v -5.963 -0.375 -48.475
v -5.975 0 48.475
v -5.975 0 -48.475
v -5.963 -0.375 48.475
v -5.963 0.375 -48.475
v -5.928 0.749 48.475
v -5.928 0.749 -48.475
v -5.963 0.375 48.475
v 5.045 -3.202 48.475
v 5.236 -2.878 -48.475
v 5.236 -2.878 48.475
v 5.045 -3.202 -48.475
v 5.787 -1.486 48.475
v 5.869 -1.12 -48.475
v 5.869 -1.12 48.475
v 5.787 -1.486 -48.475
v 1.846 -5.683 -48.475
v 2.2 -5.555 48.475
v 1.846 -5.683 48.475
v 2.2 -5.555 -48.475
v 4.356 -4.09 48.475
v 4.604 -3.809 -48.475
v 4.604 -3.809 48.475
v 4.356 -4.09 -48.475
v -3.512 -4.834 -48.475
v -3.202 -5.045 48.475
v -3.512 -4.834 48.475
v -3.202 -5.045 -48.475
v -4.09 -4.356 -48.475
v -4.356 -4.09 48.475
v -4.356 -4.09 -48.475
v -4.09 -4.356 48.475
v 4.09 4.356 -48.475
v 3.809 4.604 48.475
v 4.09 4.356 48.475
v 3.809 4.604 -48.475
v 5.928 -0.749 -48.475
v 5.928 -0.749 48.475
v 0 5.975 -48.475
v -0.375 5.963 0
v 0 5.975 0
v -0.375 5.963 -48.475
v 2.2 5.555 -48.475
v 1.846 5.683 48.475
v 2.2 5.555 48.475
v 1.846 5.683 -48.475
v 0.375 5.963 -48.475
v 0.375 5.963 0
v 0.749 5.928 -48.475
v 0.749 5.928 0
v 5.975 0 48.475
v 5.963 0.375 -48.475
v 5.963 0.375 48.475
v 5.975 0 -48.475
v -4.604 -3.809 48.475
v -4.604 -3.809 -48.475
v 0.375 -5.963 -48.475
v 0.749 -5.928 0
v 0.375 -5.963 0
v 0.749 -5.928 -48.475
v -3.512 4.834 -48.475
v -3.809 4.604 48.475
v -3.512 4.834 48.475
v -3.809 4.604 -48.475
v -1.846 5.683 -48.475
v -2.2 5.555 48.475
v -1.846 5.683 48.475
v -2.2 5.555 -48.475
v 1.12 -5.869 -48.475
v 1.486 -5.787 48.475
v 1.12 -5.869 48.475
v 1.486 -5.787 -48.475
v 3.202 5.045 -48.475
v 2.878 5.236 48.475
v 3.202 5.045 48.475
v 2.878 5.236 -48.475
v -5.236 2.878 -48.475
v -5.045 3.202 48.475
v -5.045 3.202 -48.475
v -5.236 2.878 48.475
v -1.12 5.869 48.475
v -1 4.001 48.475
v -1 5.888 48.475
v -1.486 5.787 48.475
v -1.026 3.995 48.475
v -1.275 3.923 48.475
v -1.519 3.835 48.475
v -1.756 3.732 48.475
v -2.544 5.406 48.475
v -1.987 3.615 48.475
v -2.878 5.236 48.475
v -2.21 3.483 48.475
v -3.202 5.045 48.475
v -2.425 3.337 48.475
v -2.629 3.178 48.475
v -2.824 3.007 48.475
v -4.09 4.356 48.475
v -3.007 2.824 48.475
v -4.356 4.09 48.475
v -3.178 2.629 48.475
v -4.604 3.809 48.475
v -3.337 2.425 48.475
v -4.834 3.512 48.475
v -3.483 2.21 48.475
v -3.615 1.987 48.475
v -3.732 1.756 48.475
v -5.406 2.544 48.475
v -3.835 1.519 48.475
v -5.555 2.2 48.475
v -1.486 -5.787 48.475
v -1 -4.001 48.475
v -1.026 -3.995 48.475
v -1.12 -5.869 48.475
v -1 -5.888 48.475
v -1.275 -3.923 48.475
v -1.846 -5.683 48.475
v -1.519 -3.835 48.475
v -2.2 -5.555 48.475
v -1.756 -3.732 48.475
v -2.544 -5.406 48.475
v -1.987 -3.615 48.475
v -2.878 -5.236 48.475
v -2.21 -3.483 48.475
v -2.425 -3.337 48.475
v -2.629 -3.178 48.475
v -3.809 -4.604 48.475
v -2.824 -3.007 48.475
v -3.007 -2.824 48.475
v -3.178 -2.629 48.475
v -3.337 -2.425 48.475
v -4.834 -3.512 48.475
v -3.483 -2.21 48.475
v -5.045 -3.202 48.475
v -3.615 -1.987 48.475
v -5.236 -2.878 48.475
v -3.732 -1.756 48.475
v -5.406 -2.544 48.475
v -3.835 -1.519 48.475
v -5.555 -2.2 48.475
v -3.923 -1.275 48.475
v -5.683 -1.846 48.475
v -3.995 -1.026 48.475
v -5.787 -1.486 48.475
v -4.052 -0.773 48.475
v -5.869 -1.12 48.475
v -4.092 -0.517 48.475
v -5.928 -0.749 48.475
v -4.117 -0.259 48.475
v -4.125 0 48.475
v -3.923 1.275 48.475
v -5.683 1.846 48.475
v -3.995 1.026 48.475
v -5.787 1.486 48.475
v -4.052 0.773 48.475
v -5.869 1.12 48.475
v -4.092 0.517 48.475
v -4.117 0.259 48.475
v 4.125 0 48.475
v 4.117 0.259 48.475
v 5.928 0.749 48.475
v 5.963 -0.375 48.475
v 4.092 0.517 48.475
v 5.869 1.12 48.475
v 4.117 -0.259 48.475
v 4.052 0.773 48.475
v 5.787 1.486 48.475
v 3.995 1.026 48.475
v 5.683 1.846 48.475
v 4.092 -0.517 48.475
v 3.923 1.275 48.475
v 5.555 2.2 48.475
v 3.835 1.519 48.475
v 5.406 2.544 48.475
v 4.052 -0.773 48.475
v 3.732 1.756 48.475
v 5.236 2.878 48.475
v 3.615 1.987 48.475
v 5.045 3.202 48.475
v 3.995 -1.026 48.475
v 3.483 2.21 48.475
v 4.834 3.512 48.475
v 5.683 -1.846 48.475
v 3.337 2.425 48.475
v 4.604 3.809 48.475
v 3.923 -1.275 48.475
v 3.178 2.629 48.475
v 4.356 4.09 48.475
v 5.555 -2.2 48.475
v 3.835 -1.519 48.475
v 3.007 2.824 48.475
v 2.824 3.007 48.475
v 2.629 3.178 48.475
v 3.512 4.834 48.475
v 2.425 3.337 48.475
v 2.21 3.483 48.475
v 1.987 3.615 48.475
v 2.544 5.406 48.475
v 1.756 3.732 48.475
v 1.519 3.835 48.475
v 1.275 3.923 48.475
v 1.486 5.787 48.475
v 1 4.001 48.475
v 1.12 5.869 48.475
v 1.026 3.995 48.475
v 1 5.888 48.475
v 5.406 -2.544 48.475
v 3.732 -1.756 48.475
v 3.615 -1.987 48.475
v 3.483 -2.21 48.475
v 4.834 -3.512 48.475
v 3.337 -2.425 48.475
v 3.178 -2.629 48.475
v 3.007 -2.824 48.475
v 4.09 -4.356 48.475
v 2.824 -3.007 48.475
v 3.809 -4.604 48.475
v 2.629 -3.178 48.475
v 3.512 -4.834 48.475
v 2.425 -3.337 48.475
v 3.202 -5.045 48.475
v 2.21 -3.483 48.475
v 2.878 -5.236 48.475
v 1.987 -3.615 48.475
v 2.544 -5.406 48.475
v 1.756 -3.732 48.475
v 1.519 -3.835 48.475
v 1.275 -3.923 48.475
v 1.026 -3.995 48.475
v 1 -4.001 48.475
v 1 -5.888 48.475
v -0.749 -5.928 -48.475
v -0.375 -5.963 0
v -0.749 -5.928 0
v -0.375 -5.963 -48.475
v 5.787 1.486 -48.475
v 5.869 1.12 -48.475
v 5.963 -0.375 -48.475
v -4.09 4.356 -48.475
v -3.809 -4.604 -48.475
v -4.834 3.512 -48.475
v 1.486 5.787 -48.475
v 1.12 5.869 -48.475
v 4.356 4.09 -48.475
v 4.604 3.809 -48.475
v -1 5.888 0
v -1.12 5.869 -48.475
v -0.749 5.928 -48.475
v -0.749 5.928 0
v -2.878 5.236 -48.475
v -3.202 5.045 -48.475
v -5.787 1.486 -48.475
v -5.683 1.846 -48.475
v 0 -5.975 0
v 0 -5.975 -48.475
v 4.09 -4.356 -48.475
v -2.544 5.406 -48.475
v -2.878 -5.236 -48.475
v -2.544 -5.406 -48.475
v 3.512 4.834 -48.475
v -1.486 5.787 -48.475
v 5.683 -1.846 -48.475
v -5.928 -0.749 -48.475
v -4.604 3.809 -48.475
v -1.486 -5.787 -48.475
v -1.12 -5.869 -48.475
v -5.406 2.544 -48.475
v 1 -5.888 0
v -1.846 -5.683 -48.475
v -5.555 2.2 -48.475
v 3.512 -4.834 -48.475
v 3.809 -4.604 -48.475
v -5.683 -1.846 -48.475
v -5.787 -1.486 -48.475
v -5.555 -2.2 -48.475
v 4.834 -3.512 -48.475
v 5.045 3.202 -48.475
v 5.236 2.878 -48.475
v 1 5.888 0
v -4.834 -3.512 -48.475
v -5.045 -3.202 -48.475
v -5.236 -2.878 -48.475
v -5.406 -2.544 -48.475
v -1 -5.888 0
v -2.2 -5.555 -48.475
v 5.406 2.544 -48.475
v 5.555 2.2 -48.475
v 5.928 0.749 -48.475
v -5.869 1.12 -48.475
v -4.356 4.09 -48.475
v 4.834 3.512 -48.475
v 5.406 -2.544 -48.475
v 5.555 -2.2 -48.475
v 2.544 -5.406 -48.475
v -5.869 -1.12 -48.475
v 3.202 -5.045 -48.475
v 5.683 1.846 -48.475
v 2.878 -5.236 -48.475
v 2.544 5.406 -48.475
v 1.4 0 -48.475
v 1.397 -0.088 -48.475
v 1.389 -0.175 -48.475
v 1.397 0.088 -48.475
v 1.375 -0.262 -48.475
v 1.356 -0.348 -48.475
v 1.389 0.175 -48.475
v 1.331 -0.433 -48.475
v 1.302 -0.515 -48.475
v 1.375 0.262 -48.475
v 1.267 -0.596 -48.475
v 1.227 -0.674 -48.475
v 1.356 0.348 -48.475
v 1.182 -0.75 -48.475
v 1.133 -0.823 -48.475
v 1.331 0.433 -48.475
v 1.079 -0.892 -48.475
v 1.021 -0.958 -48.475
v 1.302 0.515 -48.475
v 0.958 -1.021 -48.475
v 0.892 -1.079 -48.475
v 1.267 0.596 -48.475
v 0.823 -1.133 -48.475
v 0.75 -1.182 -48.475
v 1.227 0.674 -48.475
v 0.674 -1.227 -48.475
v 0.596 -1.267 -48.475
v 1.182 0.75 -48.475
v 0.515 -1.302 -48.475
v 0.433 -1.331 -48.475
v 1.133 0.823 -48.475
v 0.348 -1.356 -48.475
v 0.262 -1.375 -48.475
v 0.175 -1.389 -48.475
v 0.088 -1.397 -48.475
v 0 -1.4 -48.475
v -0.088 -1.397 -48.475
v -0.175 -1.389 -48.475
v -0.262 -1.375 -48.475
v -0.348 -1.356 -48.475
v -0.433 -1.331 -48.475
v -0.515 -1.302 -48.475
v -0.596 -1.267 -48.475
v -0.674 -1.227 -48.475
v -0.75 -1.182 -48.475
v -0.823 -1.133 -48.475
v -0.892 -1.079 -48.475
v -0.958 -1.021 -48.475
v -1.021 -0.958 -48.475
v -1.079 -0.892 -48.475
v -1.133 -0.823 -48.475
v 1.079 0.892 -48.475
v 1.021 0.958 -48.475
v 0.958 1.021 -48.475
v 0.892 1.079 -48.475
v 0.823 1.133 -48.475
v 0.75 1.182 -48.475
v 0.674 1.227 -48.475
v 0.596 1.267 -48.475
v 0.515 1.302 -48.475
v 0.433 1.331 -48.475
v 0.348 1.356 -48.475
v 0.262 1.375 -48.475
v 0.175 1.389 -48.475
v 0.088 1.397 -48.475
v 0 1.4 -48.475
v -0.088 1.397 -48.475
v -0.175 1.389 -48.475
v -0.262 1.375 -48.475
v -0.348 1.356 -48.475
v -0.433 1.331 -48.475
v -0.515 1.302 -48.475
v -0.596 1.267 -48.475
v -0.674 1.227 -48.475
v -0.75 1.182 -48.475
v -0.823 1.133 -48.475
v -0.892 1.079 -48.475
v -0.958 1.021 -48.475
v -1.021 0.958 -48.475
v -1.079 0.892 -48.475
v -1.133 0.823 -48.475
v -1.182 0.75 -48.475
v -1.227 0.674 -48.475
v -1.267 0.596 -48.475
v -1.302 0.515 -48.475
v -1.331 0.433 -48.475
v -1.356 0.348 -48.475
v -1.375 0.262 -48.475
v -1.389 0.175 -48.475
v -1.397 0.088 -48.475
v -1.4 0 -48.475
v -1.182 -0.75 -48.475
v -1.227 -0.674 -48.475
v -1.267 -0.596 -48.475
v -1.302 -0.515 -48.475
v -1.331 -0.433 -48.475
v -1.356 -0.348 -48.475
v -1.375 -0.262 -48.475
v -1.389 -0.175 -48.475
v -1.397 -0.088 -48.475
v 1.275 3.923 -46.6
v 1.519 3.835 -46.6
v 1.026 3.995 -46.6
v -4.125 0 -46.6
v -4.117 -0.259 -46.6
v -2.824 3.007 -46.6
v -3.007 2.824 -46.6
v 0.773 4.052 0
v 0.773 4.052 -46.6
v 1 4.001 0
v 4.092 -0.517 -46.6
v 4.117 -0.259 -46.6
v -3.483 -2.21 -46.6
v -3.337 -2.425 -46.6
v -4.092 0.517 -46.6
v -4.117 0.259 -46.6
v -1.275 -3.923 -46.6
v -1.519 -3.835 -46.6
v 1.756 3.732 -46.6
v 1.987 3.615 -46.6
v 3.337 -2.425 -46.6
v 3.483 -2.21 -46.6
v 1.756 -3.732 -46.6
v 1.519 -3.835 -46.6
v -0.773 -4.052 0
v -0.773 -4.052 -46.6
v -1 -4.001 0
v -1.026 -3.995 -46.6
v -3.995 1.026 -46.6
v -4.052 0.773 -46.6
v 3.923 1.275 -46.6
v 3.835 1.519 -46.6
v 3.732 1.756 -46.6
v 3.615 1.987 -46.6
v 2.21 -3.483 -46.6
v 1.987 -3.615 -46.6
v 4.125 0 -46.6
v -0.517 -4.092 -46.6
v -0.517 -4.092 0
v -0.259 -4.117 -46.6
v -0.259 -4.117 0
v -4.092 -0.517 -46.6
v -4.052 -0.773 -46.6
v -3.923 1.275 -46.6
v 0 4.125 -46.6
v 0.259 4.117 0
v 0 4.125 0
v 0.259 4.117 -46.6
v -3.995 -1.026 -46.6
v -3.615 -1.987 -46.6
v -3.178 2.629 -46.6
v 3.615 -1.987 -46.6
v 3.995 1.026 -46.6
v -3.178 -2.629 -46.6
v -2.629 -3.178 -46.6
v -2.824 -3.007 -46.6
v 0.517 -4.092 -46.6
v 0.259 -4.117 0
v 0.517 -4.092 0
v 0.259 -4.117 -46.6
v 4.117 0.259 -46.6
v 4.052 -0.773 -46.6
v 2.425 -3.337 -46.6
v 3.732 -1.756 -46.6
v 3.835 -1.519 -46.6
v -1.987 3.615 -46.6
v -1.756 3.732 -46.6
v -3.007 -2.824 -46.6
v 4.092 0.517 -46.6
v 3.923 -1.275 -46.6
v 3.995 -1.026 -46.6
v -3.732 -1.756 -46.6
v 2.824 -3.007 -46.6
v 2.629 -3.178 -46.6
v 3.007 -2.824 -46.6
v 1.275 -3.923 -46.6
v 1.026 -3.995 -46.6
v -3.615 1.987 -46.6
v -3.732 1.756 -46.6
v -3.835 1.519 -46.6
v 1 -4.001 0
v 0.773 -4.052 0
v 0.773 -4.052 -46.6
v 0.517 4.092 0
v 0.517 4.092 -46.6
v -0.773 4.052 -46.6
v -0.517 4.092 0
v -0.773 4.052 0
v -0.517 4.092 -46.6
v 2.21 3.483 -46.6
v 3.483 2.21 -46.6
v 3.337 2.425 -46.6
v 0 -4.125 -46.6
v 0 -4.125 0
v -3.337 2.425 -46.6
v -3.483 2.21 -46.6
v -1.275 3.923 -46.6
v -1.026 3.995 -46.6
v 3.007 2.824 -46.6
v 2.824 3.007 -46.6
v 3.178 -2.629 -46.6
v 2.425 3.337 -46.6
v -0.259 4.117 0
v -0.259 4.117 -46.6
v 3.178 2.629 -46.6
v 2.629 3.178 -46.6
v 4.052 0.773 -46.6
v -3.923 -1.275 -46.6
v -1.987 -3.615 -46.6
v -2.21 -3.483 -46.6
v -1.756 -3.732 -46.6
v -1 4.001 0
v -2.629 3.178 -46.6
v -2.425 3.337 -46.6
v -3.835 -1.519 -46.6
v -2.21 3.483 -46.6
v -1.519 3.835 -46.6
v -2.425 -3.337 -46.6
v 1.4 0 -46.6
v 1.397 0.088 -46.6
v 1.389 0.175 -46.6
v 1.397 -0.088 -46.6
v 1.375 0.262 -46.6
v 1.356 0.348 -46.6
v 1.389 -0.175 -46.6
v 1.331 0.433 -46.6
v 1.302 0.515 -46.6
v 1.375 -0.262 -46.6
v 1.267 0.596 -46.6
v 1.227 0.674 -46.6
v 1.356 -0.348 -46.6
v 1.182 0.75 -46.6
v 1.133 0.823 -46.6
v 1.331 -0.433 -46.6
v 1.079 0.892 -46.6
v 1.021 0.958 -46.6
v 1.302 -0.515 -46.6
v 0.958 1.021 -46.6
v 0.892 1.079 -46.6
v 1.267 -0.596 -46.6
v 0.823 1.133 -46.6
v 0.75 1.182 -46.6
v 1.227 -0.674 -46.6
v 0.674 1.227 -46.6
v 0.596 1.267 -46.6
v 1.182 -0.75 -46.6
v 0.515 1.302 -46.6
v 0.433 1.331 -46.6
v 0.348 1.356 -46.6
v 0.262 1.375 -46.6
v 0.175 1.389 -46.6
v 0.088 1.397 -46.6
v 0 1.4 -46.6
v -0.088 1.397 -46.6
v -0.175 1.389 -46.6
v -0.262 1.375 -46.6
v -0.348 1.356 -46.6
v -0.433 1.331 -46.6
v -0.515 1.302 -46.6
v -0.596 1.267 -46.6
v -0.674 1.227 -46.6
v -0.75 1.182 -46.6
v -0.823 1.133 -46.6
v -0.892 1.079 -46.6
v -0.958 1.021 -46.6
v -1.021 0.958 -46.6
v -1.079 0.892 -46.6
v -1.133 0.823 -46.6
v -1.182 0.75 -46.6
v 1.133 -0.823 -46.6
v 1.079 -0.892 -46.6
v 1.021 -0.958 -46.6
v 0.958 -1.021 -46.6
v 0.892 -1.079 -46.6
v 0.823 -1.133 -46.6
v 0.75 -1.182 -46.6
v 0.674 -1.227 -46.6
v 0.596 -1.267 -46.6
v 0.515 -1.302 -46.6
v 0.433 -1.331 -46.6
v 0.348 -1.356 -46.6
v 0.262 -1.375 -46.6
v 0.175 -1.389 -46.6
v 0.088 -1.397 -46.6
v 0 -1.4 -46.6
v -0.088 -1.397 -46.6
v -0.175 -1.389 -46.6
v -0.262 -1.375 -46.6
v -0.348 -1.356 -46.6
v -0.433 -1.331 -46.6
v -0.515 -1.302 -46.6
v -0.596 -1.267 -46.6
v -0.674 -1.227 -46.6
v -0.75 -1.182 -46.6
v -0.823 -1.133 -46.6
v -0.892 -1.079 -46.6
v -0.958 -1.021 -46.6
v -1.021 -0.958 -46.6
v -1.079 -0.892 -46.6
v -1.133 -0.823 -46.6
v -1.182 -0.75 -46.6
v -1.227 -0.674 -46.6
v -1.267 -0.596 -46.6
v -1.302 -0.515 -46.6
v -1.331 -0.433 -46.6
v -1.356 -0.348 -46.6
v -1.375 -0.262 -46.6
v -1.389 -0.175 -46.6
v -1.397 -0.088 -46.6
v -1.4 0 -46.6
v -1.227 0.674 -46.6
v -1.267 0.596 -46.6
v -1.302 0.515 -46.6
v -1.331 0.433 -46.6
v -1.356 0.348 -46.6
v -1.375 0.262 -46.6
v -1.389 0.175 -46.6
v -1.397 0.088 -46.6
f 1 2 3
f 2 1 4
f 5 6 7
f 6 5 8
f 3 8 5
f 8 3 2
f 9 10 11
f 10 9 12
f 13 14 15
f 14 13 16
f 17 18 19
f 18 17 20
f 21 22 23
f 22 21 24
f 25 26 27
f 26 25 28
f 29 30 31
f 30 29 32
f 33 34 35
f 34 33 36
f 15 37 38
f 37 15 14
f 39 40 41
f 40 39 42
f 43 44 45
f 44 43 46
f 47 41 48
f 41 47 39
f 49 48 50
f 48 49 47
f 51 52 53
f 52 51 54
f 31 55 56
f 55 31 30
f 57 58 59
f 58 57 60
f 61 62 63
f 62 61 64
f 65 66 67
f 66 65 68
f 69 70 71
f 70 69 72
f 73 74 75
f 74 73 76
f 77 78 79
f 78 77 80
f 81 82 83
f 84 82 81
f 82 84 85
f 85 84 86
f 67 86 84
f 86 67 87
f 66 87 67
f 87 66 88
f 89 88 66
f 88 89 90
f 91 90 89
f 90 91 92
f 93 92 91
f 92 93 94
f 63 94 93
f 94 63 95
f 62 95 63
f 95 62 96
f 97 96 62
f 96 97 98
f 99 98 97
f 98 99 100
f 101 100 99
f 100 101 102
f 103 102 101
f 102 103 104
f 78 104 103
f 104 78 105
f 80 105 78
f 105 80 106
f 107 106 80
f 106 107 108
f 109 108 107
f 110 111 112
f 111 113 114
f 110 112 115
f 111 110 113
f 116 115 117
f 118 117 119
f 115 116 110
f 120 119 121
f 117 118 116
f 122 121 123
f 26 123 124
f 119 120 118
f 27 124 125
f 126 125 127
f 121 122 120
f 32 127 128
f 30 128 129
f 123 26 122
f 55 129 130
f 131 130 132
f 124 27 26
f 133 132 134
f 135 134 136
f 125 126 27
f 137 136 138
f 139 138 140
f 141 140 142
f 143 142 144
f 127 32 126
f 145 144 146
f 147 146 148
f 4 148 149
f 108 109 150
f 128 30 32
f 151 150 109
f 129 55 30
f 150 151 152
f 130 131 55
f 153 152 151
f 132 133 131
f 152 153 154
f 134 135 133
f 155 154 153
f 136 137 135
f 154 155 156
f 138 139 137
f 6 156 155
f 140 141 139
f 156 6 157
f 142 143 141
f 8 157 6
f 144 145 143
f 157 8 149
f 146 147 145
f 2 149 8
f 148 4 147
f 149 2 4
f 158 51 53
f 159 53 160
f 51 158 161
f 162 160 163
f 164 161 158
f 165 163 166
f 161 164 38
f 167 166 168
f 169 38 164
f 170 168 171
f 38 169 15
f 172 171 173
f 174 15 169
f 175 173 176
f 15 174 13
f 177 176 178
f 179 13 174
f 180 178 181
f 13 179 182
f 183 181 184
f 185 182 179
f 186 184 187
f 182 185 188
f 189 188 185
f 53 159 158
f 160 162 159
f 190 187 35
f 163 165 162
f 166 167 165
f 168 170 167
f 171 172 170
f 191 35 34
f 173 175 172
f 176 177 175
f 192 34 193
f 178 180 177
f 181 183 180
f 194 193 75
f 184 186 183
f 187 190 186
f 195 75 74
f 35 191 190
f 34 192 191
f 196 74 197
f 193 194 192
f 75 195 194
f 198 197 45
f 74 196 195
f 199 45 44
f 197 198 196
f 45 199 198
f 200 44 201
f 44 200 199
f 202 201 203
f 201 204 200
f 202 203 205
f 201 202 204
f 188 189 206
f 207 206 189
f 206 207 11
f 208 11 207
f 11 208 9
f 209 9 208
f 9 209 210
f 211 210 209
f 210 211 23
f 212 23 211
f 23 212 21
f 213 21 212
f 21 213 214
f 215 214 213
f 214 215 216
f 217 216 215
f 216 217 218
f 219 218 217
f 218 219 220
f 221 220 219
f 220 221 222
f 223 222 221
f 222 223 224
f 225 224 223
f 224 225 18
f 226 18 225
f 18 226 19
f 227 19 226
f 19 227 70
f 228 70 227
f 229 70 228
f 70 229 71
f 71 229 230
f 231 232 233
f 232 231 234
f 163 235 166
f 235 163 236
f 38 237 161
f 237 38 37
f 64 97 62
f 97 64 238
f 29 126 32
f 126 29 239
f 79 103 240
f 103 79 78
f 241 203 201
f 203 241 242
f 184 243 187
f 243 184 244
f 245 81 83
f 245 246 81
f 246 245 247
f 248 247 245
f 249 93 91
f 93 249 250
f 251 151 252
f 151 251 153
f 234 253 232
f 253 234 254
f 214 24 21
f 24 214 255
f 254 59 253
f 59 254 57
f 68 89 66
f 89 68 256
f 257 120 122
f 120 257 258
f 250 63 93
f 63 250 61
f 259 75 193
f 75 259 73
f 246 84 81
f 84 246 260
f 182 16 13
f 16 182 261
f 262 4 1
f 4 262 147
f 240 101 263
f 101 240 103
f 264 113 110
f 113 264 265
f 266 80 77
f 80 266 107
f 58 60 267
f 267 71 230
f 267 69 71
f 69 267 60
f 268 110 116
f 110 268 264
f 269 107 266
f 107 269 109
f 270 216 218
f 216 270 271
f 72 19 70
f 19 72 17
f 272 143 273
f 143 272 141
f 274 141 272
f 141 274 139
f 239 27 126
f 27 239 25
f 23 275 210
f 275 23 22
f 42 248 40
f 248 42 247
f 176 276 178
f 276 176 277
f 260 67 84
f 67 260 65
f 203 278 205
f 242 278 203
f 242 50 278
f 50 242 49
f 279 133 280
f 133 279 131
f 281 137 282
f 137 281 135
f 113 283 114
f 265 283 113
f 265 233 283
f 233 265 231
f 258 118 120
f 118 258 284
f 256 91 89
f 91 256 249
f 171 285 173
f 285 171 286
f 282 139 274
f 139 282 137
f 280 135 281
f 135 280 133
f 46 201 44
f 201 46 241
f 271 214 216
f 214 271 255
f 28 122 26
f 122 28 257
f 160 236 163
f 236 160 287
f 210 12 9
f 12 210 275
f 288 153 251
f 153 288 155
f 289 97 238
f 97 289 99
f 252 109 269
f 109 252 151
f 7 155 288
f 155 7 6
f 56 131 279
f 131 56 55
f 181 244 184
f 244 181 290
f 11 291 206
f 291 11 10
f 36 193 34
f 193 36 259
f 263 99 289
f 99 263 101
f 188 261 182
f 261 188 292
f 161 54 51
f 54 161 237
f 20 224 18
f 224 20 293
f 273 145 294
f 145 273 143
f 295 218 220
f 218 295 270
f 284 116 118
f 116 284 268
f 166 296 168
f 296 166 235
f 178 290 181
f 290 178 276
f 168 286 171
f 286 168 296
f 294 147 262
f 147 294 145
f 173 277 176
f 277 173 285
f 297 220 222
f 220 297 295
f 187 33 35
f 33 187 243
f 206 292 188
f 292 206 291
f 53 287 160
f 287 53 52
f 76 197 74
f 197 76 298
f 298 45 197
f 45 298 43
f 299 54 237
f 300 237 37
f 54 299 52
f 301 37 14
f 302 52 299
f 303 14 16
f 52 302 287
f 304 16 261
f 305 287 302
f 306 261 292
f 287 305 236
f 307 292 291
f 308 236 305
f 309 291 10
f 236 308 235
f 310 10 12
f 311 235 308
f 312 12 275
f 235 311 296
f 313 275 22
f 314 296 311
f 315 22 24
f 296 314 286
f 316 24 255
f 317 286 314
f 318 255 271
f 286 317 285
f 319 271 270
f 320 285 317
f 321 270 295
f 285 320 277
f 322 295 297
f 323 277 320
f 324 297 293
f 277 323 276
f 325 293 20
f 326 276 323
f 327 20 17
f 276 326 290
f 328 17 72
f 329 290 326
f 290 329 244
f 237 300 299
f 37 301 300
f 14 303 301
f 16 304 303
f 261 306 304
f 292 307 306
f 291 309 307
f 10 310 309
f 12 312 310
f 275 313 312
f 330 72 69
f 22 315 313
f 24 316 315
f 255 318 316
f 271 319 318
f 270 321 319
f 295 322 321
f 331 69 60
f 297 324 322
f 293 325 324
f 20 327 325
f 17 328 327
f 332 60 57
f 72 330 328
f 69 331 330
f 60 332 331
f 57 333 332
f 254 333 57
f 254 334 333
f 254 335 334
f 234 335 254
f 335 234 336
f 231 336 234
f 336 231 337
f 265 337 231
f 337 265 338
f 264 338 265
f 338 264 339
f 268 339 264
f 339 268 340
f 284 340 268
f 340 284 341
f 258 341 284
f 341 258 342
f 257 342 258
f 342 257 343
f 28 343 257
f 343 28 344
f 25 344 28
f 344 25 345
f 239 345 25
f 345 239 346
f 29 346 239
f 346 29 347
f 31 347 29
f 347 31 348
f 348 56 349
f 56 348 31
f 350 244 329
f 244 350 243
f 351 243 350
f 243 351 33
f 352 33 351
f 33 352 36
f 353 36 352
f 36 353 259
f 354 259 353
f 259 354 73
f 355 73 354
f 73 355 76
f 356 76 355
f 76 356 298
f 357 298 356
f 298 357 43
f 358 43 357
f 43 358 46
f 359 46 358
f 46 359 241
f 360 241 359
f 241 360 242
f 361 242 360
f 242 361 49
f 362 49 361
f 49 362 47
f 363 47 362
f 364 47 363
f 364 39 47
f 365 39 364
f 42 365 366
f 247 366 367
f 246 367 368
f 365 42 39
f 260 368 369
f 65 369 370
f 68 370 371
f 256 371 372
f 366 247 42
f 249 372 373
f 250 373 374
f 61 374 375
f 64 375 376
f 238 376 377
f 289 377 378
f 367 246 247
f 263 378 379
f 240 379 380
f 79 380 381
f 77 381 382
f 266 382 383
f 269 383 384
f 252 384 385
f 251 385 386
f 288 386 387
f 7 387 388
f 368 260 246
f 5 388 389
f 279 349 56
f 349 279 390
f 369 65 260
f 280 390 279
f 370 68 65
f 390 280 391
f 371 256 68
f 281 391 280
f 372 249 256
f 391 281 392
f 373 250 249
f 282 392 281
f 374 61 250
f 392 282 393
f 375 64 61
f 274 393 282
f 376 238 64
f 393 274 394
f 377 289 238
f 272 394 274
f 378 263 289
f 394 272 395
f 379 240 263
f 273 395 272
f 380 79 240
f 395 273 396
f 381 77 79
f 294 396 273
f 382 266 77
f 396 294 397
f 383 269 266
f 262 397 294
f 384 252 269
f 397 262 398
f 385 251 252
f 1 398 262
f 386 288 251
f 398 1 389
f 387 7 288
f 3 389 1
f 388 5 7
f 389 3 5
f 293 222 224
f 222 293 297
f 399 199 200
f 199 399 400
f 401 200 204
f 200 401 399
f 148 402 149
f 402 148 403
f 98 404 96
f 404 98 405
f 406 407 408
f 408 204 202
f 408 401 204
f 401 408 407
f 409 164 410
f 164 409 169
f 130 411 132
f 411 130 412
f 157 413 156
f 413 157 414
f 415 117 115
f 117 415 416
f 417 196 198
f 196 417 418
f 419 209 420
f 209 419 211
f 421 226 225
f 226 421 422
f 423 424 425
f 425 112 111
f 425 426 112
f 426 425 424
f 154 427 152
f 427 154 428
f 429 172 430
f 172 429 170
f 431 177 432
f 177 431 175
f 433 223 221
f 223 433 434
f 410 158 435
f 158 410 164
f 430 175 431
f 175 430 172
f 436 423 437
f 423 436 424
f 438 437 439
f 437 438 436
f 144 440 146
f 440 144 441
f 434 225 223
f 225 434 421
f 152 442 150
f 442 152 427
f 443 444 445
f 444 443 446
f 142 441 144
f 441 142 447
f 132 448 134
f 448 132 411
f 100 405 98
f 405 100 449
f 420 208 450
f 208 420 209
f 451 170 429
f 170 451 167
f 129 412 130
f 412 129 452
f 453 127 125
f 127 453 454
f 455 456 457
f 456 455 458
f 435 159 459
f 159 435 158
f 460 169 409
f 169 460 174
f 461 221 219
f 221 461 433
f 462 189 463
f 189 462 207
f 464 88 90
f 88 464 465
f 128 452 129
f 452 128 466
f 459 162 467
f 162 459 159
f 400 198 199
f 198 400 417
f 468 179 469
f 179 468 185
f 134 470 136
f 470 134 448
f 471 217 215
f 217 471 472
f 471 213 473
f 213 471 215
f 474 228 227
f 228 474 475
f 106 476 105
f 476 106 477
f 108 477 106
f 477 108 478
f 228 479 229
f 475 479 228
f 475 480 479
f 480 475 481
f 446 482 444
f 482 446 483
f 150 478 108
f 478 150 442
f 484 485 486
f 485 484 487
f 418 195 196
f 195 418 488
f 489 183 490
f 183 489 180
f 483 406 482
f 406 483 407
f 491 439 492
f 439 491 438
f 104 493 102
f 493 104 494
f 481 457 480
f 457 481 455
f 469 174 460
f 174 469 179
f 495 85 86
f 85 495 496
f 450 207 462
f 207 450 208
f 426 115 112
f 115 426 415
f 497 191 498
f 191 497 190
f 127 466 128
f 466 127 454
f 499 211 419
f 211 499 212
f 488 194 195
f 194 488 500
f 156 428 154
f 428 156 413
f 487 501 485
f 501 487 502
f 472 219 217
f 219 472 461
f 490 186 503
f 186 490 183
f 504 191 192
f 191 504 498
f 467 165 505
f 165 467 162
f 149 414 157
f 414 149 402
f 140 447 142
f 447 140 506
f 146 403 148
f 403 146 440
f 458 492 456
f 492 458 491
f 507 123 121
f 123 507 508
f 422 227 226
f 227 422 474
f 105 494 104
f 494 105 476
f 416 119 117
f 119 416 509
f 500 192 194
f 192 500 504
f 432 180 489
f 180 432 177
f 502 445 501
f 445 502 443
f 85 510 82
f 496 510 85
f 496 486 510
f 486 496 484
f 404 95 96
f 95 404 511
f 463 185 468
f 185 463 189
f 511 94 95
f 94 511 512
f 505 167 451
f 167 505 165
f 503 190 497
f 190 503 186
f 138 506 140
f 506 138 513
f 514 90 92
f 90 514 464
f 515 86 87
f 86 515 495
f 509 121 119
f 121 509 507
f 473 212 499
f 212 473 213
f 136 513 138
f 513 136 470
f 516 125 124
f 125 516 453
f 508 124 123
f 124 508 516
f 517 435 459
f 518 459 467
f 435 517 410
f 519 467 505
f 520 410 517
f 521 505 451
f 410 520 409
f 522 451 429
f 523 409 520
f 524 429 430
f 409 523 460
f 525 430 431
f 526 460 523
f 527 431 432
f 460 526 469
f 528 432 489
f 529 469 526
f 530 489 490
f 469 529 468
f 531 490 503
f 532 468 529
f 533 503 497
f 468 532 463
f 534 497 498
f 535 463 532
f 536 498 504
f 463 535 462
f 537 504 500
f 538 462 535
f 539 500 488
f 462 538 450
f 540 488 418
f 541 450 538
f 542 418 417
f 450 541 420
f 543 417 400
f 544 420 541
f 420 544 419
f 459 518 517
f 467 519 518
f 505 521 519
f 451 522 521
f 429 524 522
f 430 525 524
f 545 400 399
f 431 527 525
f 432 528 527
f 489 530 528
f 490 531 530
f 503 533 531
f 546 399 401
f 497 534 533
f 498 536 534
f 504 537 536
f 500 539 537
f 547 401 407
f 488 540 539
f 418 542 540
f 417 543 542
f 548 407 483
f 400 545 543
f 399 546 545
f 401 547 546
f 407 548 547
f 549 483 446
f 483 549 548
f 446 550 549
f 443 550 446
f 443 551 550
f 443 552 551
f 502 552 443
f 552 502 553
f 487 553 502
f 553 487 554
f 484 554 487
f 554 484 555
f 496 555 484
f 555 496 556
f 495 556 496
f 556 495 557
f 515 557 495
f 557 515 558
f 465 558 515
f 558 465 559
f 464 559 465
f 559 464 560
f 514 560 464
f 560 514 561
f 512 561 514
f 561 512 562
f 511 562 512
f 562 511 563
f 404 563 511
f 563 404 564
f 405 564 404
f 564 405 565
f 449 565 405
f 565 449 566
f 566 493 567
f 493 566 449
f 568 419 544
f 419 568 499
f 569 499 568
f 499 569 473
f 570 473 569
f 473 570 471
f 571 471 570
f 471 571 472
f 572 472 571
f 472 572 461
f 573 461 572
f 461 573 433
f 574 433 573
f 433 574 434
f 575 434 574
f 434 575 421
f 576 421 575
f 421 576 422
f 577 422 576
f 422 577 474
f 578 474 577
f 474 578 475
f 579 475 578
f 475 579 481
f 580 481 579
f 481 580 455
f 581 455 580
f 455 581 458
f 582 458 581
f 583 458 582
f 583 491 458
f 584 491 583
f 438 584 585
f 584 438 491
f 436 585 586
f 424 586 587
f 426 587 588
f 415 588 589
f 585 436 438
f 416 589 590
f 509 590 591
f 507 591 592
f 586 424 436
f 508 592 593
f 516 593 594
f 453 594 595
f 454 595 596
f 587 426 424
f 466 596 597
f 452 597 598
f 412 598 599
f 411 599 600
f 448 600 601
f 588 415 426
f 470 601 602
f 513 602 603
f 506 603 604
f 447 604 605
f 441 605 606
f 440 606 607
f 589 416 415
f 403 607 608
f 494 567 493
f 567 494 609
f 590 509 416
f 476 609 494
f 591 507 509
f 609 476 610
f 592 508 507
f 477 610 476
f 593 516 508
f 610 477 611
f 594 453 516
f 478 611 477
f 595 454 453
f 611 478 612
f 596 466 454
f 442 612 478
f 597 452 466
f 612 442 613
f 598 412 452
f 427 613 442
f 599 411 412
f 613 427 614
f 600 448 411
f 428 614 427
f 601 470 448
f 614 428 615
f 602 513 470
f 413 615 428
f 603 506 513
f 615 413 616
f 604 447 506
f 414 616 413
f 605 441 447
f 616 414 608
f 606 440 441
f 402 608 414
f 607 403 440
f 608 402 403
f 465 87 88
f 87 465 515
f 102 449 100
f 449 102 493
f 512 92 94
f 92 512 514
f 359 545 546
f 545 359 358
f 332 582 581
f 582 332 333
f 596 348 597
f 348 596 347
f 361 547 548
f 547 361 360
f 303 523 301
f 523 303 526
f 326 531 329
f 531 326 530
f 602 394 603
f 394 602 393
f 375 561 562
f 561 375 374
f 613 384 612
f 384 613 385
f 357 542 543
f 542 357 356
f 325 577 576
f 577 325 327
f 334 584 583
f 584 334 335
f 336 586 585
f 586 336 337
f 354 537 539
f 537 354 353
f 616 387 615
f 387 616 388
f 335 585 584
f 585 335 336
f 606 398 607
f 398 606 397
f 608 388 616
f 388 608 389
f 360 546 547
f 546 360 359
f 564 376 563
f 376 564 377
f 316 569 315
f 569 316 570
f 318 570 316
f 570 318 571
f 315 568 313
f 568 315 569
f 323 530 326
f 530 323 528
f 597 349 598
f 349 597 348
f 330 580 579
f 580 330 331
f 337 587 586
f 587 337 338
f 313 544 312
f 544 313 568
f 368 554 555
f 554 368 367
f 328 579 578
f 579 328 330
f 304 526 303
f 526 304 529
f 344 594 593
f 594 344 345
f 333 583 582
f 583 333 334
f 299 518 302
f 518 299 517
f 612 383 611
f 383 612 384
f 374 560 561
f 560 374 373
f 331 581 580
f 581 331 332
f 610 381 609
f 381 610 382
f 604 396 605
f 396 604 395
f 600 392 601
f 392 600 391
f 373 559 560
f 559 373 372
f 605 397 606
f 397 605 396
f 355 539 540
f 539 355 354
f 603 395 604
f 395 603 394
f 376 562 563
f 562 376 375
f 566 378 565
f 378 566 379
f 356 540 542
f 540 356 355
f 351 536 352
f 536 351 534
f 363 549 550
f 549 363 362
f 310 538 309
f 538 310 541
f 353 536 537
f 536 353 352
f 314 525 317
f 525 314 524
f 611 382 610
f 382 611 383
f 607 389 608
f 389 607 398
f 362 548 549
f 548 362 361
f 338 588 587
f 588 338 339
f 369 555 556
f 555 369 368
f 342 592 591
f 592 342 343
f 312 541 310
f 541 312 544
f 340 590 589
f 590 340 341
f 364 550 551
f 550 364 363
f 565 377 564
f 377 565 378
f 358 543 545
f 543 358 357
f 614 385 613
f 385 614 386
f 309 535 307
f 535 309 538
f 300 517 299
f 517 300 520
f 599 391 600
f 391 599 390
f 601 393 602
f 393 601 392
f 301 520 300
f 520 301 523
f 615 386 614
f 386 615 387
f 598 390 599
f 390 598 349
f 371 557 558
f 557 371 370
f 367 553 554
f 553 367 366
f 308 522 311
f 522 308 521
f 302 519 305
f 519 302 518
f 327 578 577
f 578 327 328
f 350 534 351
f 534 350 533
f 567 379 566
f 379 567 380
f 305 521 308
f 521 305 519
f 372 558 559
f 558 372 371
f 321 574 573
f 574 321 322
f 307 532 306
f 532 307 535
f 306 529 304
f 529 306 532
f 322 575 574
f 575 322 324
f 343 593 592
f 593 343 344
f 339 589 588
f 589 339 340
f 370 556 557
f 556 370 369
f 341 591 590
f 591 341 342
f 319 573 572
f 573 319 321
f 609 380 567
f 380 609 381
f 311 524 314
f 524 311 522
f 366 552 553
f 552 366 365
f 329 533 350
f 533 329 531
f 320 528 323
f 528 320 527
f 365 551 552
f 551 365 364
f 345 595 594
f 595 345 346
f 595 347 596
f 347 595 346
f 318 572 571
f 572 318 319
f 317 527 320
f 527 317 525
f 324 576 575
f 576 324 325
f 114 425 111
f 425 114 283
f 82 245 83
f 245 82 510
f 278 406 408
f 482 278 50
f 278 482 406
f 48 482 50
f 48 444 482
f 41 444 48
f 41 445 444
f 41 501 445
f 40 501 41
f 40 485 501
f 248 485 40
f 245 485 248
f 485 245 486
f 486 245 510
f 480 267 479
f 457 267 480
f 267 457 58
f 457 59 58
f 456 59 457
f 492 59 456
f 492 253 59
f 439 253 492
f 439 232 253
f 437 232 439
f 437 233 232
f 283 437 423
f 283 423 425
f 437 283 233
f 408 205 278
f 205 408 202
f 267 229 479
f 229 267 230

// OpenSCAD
// file: ../../../shared_helper.scad
// Shared Helper variables and modules

// Variables
quality_value = 100;
$fn = quality_value;

// Screw Holes
m2_hole_diameter = 1.85; // 1.95;
m2_loose_diameter = 2.50;
m2_counter_sink_diameter = 3.80;
m2_counter_sink_length = 2.00;
m2_hole_offset = m2_hole_diameter / 2.0;
m2_hole_height = 100.00;
m2_nut_outer_width = 3.90;
m2_nut_outer_height = 4.40;
m2_nut_outer_depth = 1.50;
// M2_Counter_Sink_Depth

m3_hole_diameter = 2.9; // 2.8
m3_hole_offset = m3_hole_diameter / 2.0;
m3_hole_height = 100.00;
m3_head_diameter = 6.2;
m3_head_depth = 3.0; // 2.5??, 3.0

m4_hole_diameter = 3.85; // 3.90
m4_hole_offset = m4_hole_diameter / 2.0;
m4_hole_height = 100.00;
m4_head_diameter = 7.55;
m4_head_depth = 3.0; // 2.5??, 3.0

// Tolerances
hole_tight_tolerance = 0.05;
hole_loose_tolerance = 0.20;

// Springs
spring_diameter = 5.45;
spring_length = 35.00;

// Nails
brass_nail_diameter = 2.4; // 2.00; // 1.95 at the beginning it tapers
brass_nail_length = 29.54;
brass_nail_head_diameter = 3.20; // 3.00; // oval 2.84 - 3.1 mm
brass_nail_head_depth = 1.80; //1.00; // 1.80; // 2.00;

// General Variables
v_wheel_hole_diameter = 5.20;
v_wheel_offset = (v_wheel_hole_diameter / 2.0) + 2.0;

// Hot-End Holes
stand_off_hole_diameter = m3_hole_diameter;
stand_off_width_distance = 11.60 + stand_off_hole_diameter;

// Magnets
// Small Magnet (Neo)
small_magnet_height = 2.00; // ±2.00 1.97
small_magnet_diameter = 3.00; // ±3.00 // 2.98

// Medium Magnet (Neo)
medium_magnet_height = 2.96; // ±3.00
medium_magnet_diameter = 5.00;

// Large Magnet (ferrite)
large_magnet_height = 2.98; // ±3.00
large_magnet_diameter = 9.79; // ±10.00

// Switches
// D2F Switch
d2f_length = 12.88; // ±12.70
d2f_width = 5.84; // ±5.70
d2f_depth = 6.20; // ±7.00 (5 + 2) ... ±6.50
d2f_pins = 9.00 - 6.50;
d2f_plunger_length = 2.64;
d2f_plunger_width = 0.97; // ±1.00
d2f_plunger_depth = 0.39; // ±0.50
d2f_mount_hole_position = 2.10;
d2f_hole_position_from_centre = 2.85;
d2f_pin_pre_travel = 0.50;
d2f_mount_hole_shift = 4.40 + m2_hole_offset + m2_hole_offset;
d2f_switch_base = 0.2 + 0.7 + 1.50 + 0.55 - 1.0;
d2f_switch_hole_hight = 22.00;
d2f_extra_tolerance_for_switch_holes = 0.12;

// 10t85 Switch
10t85_length = 20.04; // ±19.90
10t85_width = 6.34; // ±6.40
10t85_depth = 10.64; // ±10.70
10t85_plunger_length = 3.28; // ±4.00
10t85_plunger_width = 1.96;
10t85_plunger_depth = 1.30;

// Creality Endstop Board, 2208 V2.0
// creality_endstop_hole_diameter = m3_hole_diameter + hole_loose_tolerance; // Hole is M3 sized but meant for a loose M2
creality_endstop_hole_diameter = m2_hole_diameter + hole_tight_tolerance;
creality_endstop_hole_offset = 15.00;
creality_endstop_board_height = 20.30;
creality_endstop_plug_height_extension = 2.00;
creality_endstop_board_width = 20.20;
creality_endstop_board_thickness = 1.30;
creality_endstop_board_pins_thickness = 3.20 - creality_endstop_board_thickness;
creality_endstop_board_switch_thickness = 8.50 - creality_endstop_board_thickness;
creality_endstop_board_back_space = 2.00; // Taken from the rail mount bracket
creality_endstop_board_back_height = 14.90;
creality_endstop_board_back_width = 16.80;
creality_endstop_back_thickness = 3.30;
creality_endstop_back_hole_wall_spacing = 1.50; //3.00;

// Small Tactile Switch
small_tactile_switch_length = 6.21;
small_tactile_switch_width = 6.17;
small_tactile_switch_depth = 3.18;
small_tactile_switch_plunger_diameter = 3.40;
small_tactile_switch_plunger_depth = 1.40;

// Large Tactile Switch
large_tactile_switch_length = 12.03;
large_tactile_switch_width = 11.95;
large_tactile_switch_depth = 3.12;
large_tactile_switch_plunger_length = 3.75;
large_tactile_switch_plunger_width = 3.70;
large_tactile_switch_plunger_depth = 3.94;

// Button
button_topper_top_diameter = 11.65;
button_topper_bottom_diameter = 12.96;
button_topper_depth = 5.64;
button_topper_bottom_depth = 4.38;

// Belts
// GT2

// Modules
// Creality Mounting Holes
module CrealityCounterSunkHotEndMountingHoles(total_casing_depth, casing_top_extension) {
  // Mounting holes with countersinking - horizontal, through-holes, properly positioned
  cylinder(d=m3_hole_diameter, h=total_casing_depth + 2.00, center=true);
  cylinder(d=m3_hole_diameter, h=total_casing_depth + 2.00, center=true);

  translate([stand_off_width_distance, 0, 0]) {
    cylinder(d=m3_hole_diameter, h=total_casing_depth + 2.00, center=true);
    cylinder(d=m3_head_diameter + hole_loose_tolerance, h=4 + m3_head_depth + 6 + 1.8 + casing_top_extension);
  }
}

module CrealityHotEndMountingHoles(total_casing_depth) {
  cylinder(d=m3_hole_diameter, h=total_casing_depth + 2.00, center=true);

  translate([stand_off_width_distance, 0, 0]) {
    cylinder(d=m3_hole_diameter, h=total_casing_depth + 2.00, center=true);
  }
}

module CrealityEndstopMountHoles(height, include_back_nut_cutout) {
  cylinder(d=creality_endstop_hole_diameter, h=height, center=true);

  translate([creality_endstop_hole_offset, 0, 0]) {
    cylinder(d=creality_endstop_hole_diameter, h=height, center=true);
  }

  if (include_back_nut_cutout) {
    back_depth = m2_nut_outer_depth;

    translate([-2.0, -2.0, 0]) {
      cube([m2_nut_outer_width, m2_nut_outer_height, back_depth]);

      translate([creality_endstop_hole_offset, 0, 0]) {
        cube([m2_nut_outer_width, m2_nut_outer_height, back_depth]);
      }
    }
  }
}

module CrealityEndstopBackSpace(base_cutout_extension) {
  // Smaller gap between screw holes
  translate([creality_endstop_hole_diameter + creality_endstop_back_hole_wall_spacing, 0.0, 0.0]) {
    cube([creality_endstop_board_back_width - 2 * (creality_endstop_hole_diameter + creality_endstop_back_hole_wall_spacing), base_cutout_extension, creality_endstop_back_thickness + 1.0]);
  }

  // Top gap part
  translate([0.0, base_cutout_extension, 0]) {
    cube([creality_endstop_board_back_width, (creality_endstop_board_back_height + base_cutout_extension), creality_endstop_back_thickness + 1.0]);
  }
}

// D2F Switch Mounting
module D2F_Switch_Space() { // Should be used as a negative / difference space
  // D2F Switch Space
  // switch_base = 0.2 + 0.7 + 1.50 + 0.55;
  // switch_base = 0.2 + 0.7 + 1.50 + 0.55 - 1.0;
  switch_base = d2f_switch_base;

  // cube([d2f_depth, d2f_width + 1.05 + 0.75 - 0.95, d2f_length + casing_top_edge_buffer]); // 1.05
  cube([d2f_length, (d2f_width + 2.00) + d2f_pins, d2f_depth]);
}

module D2F_Switch_Mount_Holes() {
  rotate([0, 0, 90]) {
    translate([0.0, d2f_hole_position_from_centre, 0.0]) {
      cylinder(d=m2_hole_diameter + hole_tight_tolerance + (d2f_extra_tolerance_for_switch_holes * 3), h=d2f_switch_hole_hight);
    }

    translate([0.0, -(d2f_hole_position_from_centre + m2_hole_offset), 0.0]) {
      cylinder(d=m2_hole_diameter + hole_tight_tolerance + (d2f_extra_tolerance_for_switch_holes * 3), h=d2f_switch_hole_hight);
    }
  }
}
// main file
// 8mm to 12mm Rod Sleeve Adapter

// This sleeve converts an 8mm linear stainless rod to 12mm mounting holes
// Uses shared_helper.scad for tolerances and quality settings

include <../../../shared_helper.scad>;

revision = 1.0;

// Rod dimensions
inner_rod_diameter = 8.0;
outer_sleeve_diameter = 12.0;
sleeve_length = 25.5 + 8.25 + 63.2; //30.0;  // Adjust as needed // +1.5

// Tolerances
// inner_tolerance = (2 * hole_tight_tolerance) + hole_loose_tolerance;    // Tight perfect fit for the 8mm rod
inner_tolerance = hole_tight_tolerance + hole_loose_tolerance;    // Tight fit for the 8mm rod
outer_tolerance = hole_tight_tolerance;  // Slightly looser fit for the 12mm mounting holes

// Gap parameters for installation
gap_width = 2.0;  // Width of the gap to allow squeezing

// Create the sleeve
rotate([0, 180, 0]) {
  difference() {
    // Outer cylinder
    cylinder(d=outer_sleeve_diameter - outer_tolerance, h=sleeve_length, center=true);

    // Inner hole for 8mm rod
    rotate([0, 0, 180]) {
      translate([0, 0, -sleeve_length + 12.5 + 35.40 + 0.2 - 0.5 -1.0])
      cylinder(d=inner_rod_diameter + inner_tolerance, h=sleeve_length);
    }

    // Small hole to push rod out
    cylinder(d=m3_hole_diameter - 0.1, h=sleeve_length + 1.0, center=true);

    // Gap to allow squeezing for installation
    translate([0, 0, -sleeve_length/2 - 0.5])
    cube([gap_width, outer_sleeve_diameter + 1, sleeve_length + 1], center=true);
  }
}
